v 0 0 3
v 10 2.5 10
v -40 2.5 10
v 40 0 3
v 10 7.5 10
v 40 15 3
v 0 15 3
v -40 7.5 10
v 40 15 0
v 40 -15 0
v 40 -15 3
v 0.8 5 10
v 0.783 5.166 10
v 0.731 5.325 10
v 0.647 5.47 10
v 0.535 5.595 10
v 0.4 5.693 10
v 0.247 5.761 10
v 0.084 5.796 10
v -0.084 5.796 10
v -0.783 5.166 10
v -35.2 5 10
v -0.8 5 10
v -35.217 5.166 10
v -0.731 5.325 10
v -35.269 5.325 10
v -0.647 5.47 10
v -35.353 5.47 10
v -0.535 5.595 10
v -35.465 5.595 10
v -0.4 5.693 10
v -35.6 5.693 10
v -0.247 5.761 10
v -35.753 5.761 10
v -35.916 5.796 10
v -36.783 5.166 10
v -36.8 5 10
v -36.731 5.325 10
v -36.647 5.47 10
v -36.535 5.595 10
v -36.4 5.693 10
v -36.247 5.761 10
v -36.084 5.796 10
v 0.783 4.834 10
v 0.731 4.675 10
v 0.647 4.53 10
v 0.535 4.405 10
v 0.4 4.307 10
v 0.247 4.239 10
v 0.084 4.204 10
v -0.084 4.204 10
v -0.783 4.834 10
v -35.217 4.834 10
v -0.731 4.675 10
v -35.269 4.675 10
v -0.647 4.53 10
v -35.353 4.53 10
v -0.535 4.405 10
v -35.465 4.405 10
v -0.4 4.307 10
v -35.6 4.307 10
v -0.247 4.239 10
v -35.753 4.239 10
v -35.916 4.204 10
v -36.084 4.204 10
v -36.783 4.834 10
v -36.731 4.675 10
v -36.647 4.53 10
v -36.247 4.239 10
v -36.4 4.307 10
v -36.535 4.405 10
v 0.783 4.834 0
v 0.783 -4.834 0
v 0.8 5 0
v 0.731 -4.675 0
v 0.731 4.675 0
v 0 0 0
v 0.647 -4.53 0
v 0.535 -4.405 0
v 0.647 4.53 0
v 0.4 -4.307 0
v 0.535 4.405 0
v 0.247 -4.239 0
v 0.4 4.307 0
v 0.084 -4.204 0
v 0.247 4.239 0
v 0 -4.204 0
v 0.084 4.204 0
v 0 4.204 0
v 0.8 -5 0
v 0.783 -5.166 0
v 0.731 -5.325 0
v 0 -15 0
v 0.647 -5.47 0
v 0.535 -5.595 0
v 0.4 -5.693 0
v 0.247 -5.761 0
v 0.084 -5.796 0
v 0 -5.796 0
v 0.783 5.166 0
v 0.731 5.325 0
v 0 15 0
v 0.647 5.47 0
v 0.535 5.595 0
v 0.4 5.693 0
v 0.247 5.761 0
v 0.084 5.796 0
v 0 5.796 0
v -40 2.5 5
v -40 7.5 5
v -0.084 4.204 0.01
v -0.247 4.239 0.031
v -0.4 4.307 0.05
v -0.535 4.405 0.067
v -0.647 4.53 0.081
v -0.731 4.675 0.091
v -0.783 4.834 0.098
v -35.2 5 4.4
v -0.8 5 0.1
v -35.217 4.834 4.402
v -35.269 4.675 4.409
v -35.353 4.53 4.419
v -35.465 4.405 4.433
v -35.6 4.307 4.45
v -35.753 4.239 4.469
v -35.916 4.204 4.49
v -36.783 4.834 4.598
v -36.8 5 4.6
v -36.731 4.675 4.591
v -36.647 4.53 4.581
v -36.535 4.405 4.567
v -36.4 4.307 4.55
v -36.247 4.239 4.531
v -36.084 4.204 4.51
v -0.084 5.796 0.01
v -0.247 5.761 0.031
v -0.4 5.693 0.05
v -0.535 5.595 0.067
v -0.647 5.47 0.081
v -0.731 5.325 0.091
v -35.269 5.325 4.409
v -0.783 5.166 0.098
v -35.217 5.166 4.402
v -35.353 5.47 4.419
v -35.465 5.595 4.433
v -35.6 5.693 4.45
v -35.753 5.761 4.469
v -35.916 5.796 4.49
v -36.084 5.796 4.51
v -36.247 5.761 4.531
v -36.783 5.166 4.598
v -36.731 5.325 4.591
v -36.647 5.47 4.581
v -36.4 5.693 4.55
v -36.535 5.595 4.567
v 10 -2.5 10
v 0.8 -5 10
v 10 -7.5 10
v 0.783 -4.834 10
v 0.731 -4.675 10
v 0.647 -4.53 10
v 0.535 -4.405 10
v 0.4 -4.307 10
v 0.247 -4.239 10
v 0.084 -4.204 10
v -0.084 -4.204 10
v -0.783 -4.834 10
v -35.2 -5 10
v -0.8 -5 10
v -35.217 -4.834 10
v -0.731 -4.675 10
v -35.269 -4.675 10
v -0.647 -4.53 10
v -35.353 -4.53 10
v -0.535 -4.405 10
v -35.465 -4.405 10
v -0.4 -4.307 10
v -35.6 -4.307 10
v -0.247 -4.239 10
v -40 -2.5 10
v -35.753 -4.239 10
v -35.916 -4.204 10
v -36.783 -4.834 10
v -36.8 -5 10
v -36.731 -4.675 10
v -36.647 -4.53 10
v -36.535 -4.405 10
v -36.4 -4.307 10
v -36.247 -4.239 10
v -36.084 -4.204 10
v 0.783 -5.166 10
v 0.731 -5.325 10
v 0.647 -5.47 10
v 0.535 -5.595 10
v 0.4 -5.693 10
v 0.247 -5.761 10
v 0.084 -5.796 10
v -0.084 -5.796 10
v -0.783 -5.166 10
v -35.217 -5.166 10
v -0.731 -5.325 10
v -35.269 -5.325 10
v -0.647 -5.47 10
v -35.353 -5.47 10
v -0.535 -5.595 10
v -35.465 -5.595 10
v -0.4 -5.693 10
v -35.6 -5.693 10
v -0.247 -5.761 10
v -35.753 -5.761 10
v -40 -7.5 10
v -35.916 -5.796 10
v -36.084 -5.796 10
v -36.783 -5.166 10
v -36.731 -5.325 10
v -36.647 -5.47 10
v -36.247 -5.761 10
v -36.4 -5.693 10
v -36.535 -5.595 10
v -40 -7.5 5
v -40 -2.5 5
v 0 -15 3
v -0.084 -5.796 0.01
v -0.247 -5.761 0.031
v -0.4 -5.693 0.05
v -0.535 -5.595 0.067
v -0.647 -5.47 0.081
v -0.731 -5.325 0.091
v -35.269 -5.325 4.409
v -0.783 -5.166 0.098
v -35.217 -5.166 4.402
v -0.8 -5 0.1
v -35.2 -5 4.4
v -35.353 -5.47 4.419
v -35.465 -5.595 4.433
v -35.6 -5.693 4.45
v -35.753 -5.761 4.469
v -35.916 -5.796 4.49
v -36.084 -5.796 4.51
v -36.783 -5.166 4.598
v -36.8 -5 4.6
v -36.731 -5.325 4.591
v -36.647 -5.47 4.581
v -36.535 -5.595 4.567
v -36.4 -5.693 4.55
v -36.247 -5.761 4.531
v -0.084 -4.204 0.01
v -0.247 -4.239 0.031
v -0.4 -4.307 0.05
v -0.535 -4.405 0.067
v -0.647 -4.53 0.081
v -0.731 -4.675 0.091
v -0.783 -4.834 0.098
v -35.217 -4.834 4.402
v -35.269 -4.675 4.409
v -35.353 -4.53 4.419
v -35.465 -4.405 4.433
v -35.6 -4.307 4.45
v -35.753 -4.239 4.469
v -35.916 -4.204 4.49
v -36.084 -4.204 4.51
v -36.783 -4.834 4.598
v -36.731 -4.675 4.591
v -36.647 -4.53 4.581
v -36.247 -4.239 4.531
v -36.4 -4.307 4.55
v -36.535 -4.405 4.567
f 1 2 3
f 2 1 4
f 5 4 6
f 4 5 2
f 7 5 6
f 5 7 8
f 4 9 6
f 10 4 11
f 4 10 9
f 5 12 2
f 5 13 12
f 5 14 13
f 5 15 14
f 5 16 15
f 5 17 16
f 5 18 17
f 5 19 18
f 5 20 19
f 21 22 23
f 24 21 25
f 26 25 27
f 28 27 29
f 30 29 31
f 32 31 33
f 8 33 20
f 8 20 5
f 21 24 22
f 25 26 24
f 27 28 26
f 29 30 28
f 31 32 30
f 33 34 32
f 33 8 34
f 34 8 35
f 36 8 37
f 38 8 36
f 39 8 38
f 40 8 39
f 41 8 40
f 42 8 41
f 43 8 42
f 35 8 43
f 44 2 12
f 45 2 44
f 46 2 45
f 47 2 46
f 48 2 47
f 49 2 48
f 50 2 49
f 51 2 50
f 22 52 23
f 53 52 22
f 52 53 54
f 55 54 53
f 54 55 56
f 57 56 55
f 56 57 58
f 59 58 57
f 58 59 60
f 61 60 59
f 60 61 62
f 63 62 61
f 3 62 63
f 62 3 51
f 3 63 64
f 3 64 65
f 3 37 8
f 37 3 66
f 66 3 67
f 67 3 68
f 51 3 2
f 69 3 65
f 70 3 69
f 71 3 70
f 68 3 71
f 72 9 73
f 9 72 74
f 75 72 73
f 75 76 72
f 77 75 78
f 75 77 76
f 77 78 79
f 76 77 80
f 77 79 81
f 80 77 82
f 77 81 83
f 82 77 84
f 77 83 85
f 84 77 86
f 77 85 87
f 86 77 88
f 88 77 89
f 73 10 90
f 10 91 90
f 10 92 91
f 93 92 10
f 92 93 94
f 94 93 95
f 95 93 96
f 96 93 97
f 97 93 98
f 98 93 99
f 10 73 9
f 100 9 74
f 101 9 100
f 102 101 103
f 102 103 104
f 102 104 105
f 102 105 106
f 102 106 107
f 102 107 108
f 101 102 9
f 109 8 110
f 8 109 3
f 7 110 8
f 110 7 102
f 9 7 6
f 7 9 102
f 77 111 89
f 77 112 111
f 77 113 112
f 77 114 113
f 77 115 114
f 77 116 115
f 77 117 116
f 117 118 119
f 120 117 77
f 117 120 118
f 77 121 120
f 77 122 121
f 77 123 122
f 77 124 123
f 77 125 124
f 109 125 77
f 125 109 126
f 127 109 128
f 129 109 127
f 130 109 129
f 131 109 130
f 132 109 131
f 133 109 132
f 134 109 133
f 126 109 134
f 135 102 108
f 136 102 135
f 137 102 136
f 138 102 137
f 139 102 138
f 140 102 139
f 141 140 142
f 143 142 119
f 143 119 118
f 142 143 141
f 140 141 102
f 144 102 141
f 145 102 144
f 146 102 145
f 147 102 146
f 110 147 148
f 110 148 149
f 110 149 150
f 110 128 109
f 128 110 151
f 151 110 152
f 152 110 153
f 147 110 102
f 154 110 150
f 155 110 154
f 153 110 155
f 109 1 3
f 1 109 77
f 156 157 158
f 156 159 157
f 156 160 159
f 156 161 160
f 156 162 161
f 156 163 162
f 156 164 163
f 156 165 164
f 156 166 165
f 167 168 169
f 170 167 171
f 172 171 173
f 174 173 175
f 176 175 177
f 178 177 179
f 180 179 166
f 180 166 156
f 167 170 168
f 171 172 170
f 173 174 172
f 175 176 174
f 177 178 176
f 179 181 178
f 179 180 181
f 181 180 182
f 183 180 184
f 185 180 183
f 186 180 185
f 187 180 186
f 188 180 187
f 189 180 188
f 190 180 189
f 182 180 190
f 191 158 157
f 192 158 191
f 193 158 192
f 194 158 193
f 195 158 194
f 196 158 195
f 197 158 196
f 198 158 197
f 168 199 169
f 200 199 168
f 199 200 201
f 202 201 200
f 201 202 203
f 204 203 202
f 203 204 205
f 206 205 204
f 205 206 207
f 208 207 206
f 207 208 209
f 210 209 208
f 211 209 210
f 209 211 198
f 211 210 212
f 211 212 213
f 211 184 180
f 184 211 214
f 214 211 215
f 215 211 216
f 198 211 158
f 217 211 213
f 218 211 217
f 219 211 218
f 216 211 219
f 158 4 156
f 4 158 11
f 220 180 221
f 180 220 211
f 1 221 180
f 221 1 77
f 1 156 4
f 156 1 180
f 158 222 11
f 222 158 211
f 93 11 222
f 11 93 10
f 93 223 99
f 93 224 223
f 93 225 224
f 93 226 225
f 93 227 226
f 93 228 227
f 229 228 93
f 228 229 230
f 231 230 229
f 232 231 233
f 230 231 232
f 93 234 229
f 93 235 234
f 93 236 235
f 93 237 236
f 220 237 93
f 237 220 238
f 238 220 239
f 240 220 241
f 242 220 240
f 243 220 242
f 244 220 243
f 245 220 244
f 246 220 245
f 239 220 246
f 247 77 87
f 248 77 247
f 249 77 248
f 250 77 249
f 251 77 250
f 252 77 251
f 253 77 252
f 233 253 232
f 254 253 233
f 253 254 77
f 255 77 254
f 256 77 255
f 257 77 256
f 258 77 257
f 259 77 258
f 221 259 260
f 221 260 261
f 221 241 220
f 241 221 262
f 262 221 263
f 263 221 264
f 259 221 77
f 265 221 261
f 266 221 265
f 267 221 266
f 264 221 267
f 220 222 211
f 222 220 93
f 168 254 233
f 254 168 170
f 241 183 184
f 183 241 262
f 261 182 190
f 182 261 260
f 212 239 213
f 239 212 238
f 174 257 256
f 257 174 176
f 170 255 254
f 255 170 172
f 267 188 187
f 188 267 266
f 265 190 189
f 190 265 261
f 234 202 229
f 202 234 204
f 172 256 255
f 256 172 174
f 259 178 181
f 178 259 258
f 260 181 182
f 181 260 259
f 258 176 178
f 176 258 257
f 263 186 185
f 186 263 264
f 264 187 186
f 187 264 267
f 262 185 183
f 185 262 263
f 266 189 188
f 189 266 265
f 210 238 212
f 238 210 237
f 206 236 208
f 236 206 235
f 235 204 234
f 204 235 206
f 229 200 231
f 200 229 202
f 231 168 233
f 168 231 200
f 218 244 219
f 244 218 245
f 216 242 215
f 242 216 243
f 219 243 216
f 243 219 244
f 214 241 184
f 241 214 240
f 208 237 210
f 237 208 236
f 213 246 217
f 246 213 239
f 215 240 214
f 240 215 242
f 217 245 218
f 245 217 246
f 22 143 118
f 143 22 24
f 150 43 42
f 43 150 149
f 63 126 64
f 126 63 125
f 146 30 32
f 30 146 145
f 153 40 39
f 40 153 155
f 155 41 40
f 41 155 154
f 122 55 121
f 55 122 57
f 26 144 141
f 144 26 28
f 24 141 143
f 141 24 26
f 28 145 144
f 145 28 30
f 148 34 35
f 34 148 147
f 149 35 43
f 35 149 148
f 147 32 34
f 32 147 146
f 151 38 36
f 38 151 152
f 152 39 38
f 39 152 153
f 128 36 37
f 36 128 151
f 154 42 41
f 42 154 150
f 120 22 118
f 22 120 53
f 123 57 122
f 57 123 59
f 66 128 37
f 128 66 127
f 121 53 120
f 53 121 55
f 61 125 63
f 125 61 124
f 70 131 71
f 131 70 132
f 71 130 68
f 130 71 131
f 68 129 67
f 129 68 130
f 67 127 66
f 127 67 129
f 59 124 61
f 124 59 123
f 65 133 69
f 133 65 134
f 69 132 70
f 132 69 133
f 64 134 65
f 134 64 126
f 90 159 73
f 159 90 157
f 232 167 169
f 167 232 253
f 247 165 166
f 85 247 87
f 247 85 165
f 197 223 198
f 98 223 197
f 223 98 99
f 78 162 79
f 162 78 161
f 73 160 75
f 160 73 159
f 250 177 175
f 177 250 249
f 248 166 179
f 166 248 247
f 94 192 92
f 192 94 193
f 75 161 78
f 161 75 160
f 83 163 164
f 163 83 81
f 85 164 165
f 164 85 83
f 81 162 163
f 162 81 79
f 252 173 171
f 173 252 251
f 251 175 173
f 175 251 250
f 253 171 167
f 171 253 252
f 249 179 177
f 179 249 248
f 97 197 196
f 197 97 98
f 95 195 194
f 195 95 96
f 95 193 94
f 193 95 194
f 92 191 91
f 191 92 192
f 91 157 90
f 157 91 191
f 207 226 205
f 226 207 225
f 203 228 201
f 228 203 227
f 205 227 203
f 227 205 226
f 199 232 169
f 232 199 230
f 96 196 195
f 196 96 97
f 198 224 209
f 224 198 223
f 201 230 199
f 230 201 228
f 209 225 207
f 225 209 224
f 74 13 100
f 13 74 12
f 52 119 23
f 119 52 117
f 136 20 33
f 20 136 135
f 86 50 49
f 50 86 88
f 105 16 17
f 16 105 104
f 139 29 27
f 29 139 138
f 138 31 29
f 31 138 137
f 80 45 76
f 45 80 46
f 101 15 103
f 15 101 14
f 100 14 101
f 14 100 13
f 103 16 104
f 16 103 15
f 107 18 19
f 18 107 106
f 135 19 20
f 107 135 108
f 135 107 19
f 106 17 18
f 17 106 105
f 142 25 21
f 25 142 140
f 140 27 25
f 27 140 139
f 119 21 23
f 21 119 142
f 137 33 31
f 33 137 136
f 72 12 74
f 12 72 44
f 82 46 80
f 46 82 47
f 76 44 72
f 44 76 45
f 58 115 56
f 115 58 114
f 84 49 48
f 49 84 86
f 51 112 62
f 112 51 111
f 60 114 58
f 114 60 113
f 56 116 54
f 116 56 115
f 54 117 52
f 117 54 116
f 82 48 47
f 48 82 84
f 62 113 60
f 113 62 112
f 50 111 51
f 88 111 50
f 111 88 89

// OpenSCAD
difference(){
union(){
hull(){
  translate([-40,-5/2+5,5])cube([50,5,5]);
  translate([0,0,0])cube([40,15,3]);
  
}
hull(){
translate([0,-30/2,0])cube([40,15,3]);
translate([-40,-5/2-5,5])cube([50,5,5]);
}
}
translate([-18-18,-5,-10])cylinder(r=0.8,h=51,$fn=30);
translate([-18-18, 5,-10])cylinder(r=0.8,h=51,$fn=30);
translate([-18+18,-5,-10])cylinder(r=0.8,h=51,$fn=30);
translate([-18+18, 5,-10])cylinder(r=0.8,h=51,$fn=30);
}
